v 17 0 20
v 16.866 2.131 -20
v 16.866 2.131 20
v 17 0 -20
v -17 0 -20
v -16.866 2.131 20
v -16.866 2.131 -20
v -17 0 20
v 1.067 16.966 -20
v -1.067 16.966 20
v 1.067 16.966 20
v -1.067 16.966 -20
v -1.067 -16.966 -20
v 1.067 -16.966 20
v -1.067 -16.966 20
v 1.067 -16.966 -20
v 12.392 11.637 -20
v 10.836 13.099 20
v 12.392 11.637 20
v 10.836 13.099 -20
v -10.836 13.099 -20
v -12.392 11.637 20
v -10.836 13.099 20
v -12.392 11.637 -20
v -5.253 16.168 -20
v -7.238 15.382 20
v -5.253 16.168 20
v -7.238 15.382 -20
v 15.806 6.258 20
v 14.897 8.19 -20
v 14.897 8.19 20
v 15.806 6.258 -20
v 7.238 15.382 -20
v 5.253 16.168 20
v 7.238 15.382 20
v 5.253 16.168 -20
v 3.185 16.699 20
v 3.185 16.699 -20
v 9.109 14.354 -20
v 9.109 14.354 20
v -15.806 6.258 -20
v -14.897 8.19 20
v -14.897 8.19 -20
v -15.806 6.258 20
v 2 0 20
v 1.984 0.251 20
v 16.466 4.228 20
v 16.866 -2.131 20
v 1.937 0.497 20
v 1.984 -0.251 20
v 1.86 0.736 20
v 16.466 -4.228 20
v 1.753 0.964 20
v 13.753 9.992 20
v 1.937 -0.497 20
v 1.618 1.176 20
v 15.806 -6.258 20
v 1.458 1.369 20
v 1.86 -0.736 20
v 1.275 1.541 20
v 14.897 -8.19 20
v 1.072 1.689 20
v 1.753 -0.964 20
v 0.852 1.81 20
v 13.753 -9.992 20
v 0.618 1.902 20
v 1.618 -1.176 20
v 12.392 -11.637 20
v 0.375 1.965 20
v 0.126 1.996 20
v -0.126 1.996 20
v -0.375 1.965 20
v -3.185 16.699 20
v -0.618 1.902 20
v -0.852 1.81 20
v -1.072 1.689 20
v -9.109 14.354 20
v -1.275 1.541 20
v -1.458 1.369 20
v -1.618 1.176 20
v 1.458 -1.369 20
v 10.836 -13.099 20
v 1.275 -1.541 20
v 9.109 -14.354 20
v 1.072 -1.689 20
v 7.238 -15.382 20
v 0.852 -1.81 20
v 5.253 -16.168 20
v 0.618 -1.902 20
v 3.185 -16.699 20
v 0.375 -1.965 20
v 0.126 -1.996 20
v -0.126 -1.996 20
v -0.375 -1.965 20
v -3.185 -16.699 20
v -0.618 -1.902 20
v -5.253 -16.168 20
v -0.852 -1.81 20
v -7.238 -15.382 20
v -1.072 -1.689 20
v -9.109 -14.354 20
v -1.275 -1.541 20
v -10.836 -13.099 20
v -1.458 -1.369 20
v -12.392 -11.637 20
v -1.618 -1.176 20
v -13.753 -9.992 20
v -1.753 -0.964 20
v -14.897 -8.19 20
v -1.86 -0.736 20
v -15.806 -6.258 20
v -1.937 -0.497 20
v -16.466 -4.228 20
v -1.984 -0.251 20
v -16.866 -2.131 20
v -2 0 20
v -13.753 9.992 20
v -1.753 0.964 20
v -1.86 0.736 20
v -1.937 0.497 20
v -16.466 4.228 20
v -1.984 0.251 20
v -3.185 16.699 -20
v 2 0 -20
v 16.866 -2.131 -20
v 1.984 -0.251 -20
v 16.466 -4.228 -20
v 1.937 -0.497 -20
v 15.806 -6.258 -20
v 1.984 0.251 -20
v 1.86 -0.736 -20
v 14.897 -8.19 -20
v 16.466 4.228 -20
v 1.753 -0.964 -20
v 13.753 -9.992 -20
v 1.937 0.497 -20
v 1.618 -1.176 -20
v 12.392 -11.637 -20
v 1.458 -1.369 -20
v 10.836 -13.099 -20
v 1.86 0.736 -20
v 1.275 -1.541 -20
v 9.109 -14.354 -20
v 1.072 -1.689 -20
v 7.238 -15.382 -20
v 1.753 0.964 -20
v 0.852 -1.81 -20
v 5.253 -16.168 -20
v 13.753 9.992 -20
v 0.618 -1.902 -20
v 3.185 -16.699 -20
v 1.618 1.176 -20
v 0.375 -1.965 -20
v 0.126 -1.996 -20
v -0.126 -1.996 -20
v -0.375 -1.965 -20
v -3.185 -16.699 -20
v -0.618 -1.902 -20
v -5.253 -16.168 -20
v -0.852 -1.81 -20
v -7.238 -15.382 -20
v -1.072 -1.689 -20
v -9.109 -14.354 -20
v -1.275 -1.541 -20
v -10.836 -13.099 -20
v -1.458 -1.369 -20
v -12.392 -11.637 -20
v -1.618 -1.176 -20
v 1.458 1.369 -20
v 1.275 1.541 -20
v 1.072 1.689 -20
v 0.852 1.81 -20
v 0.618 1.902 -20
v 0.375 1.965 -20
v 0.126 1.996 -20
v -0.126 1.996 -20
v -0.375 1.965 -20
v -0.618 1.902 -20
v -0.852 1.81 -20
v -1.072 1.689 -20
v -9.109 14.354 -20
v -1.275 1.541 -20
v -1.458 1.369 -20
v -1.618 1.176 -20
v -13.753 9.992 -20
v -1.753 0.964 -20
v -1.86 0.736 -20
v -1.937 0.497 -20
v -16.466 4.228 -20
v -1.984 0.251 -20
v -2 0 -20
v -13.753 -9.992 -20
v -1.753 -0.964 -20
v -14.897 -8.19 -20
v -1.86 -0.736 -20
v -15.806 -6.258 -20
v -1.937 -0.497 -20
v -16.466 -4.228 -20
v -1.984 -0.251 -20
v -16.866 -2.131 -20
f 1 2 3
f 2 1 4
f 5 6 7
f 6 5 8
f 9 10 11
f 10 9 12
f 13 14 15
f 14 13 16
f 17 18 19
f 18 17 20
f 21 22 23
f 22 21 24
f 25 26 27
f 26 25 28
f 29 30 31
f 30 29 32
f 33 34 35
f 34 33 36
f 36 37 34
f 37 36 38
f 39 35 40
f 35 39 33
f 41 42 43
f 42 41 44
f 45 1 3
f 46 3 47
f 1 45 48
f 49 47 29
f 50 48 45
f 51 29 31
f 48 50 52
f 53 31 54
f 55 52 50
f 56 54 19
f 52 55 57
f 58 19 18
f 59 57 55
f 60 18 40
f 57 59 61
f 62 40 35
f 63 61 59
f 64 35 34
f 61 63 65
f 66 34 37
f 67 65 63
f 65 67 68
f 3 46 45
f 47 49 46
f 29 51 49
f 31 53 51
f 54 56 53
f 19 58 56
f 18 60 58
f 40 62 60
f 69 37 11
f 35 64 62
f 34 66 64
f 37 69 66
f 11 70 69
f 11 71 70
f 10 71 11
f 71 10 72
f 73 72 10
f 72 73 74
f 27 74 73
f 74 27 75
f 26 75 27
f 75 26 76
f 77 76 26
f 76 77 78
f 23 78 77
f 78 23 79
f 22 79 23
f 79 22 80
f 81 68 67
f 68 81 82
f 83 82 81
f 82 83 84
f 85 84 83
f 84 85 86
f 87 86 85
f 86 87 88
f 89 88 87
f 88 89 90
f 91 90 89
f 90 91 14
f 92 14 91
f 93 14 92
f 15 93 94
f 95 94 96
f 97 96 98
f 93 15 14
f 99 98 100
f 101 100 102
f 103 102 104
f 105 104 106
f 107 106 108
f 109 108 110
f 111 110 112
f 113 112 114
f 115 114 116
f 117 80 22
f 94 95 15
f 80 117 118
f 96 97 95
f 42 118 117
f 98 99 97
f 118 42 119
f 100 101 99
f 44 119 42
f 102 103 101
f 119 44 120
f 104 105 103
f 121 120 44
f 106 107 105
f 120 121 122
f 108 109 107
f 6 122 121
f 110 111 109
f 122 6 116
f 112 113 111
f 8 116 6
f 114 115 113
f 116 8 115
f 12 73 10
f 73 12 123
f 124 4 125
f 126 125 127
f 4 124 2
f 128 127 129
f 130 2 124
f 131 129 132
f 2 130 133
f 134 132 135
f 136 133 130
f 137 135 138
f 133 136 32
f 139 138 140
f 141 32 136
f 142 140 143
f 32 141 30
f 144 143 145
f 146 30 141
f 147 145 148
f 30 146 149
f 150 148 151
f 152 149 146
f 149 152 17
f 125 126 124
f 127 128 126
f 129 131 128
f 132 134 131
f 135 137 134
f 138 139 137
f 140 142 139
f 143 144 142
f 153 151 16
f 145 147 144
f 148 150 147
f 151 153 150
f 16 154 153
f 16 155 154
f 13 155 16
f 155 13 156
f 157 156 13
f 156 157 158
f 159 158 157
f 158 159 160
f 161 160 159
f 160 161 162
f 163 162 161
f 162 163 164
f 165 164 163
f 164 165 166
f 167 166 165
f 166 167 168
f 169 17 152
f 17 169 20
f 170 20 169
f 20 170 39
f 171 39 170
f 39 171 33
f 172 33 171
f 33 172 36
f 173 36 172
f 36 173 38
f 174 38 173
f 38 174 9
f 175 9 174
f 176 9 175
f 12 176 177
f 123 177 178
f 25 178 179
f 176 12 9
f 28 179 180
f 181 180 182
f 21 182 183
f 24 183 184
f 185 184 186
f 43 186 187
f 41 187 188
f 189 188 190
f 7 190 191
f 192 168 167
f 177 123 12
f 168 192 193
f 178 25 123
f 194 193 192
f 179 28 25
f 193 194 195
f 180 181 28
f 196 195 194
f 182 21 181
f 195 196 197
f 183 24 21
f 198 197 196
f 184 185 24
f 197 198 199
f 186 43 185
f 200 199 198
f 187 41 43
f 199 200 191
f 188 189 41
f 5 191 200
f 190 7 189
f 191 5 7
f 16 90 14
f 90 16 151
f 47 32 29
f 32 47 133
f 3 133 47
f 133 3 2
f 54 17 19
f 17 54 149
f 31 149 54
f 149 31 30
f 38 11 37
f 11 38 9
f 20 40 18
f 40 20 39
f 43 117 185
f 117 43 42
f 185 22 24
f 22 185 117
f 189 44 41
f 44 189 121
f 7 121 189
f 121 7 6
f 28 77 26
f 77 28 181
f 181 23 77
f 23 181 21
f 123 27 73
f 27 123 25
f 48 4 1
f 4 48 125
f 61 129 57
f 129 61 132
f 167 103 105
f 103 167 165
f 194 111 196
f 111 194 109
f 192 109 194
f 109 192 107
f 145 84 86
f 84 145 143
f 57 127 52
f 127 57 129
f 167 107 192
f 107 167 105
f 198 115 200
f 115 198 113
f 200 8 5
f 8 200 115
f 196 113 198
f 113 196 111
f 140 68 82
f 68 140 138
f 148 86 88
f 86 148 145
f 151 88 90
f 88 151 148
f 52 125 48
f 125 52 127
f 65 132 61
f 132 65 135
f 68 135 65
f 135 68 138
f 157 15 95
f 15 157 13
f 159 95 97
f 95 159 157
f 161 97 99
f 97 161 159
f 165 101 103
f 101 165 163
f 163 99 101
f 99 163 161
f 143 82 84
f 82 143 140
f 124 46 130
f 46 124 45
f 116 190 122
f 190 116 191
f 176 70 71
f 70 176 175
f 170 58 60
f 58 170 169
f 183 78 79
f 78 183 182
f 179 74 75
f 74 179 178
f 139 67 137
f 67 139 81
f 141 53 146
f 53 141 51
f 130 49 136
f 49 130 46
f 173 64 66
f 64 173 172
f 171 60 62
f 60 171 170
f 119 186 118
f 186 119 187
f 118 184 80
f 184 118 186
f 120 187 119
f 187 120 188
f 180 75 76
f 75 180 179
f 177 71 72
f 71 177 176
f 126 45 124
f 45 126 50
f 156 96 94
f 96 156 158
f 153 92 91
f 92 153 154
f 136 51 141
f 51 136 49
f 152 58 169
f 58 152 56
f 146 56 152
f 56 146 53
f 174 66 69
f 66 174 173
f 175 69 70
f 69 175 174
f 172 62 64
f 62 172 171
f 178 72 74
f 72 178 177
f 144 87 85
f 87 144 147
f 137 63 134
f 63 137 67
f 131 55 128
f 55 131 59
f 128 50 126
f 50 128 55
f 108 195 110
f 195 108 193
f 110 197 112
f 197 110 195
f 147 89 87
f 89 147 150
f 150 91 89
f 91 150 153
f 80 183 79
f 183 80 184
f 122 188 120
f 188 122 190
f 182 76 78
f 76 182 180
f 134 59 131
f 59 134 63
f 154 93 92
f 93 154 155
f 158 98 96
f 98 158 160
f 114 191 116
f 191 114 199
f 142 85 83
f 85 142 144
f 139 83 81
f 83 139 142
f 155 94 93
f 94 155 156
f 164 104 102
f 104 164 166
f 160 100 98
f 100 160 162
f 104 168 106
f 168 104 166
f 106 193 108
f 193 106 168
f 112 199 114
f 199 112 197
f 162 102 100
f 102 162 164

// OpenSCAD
$fn = 50;


difference() {
	union() {
		translate(v = [0, 0, -20.0000000000]) {
			cylinder(h = 40, r = 17.0000000000);
		}
	}
	union() {
		translate(v = [0, 0, -100.0000000000]) {
			cylinder(h = 200, r = 2.0000000000);
		}
	}
}
